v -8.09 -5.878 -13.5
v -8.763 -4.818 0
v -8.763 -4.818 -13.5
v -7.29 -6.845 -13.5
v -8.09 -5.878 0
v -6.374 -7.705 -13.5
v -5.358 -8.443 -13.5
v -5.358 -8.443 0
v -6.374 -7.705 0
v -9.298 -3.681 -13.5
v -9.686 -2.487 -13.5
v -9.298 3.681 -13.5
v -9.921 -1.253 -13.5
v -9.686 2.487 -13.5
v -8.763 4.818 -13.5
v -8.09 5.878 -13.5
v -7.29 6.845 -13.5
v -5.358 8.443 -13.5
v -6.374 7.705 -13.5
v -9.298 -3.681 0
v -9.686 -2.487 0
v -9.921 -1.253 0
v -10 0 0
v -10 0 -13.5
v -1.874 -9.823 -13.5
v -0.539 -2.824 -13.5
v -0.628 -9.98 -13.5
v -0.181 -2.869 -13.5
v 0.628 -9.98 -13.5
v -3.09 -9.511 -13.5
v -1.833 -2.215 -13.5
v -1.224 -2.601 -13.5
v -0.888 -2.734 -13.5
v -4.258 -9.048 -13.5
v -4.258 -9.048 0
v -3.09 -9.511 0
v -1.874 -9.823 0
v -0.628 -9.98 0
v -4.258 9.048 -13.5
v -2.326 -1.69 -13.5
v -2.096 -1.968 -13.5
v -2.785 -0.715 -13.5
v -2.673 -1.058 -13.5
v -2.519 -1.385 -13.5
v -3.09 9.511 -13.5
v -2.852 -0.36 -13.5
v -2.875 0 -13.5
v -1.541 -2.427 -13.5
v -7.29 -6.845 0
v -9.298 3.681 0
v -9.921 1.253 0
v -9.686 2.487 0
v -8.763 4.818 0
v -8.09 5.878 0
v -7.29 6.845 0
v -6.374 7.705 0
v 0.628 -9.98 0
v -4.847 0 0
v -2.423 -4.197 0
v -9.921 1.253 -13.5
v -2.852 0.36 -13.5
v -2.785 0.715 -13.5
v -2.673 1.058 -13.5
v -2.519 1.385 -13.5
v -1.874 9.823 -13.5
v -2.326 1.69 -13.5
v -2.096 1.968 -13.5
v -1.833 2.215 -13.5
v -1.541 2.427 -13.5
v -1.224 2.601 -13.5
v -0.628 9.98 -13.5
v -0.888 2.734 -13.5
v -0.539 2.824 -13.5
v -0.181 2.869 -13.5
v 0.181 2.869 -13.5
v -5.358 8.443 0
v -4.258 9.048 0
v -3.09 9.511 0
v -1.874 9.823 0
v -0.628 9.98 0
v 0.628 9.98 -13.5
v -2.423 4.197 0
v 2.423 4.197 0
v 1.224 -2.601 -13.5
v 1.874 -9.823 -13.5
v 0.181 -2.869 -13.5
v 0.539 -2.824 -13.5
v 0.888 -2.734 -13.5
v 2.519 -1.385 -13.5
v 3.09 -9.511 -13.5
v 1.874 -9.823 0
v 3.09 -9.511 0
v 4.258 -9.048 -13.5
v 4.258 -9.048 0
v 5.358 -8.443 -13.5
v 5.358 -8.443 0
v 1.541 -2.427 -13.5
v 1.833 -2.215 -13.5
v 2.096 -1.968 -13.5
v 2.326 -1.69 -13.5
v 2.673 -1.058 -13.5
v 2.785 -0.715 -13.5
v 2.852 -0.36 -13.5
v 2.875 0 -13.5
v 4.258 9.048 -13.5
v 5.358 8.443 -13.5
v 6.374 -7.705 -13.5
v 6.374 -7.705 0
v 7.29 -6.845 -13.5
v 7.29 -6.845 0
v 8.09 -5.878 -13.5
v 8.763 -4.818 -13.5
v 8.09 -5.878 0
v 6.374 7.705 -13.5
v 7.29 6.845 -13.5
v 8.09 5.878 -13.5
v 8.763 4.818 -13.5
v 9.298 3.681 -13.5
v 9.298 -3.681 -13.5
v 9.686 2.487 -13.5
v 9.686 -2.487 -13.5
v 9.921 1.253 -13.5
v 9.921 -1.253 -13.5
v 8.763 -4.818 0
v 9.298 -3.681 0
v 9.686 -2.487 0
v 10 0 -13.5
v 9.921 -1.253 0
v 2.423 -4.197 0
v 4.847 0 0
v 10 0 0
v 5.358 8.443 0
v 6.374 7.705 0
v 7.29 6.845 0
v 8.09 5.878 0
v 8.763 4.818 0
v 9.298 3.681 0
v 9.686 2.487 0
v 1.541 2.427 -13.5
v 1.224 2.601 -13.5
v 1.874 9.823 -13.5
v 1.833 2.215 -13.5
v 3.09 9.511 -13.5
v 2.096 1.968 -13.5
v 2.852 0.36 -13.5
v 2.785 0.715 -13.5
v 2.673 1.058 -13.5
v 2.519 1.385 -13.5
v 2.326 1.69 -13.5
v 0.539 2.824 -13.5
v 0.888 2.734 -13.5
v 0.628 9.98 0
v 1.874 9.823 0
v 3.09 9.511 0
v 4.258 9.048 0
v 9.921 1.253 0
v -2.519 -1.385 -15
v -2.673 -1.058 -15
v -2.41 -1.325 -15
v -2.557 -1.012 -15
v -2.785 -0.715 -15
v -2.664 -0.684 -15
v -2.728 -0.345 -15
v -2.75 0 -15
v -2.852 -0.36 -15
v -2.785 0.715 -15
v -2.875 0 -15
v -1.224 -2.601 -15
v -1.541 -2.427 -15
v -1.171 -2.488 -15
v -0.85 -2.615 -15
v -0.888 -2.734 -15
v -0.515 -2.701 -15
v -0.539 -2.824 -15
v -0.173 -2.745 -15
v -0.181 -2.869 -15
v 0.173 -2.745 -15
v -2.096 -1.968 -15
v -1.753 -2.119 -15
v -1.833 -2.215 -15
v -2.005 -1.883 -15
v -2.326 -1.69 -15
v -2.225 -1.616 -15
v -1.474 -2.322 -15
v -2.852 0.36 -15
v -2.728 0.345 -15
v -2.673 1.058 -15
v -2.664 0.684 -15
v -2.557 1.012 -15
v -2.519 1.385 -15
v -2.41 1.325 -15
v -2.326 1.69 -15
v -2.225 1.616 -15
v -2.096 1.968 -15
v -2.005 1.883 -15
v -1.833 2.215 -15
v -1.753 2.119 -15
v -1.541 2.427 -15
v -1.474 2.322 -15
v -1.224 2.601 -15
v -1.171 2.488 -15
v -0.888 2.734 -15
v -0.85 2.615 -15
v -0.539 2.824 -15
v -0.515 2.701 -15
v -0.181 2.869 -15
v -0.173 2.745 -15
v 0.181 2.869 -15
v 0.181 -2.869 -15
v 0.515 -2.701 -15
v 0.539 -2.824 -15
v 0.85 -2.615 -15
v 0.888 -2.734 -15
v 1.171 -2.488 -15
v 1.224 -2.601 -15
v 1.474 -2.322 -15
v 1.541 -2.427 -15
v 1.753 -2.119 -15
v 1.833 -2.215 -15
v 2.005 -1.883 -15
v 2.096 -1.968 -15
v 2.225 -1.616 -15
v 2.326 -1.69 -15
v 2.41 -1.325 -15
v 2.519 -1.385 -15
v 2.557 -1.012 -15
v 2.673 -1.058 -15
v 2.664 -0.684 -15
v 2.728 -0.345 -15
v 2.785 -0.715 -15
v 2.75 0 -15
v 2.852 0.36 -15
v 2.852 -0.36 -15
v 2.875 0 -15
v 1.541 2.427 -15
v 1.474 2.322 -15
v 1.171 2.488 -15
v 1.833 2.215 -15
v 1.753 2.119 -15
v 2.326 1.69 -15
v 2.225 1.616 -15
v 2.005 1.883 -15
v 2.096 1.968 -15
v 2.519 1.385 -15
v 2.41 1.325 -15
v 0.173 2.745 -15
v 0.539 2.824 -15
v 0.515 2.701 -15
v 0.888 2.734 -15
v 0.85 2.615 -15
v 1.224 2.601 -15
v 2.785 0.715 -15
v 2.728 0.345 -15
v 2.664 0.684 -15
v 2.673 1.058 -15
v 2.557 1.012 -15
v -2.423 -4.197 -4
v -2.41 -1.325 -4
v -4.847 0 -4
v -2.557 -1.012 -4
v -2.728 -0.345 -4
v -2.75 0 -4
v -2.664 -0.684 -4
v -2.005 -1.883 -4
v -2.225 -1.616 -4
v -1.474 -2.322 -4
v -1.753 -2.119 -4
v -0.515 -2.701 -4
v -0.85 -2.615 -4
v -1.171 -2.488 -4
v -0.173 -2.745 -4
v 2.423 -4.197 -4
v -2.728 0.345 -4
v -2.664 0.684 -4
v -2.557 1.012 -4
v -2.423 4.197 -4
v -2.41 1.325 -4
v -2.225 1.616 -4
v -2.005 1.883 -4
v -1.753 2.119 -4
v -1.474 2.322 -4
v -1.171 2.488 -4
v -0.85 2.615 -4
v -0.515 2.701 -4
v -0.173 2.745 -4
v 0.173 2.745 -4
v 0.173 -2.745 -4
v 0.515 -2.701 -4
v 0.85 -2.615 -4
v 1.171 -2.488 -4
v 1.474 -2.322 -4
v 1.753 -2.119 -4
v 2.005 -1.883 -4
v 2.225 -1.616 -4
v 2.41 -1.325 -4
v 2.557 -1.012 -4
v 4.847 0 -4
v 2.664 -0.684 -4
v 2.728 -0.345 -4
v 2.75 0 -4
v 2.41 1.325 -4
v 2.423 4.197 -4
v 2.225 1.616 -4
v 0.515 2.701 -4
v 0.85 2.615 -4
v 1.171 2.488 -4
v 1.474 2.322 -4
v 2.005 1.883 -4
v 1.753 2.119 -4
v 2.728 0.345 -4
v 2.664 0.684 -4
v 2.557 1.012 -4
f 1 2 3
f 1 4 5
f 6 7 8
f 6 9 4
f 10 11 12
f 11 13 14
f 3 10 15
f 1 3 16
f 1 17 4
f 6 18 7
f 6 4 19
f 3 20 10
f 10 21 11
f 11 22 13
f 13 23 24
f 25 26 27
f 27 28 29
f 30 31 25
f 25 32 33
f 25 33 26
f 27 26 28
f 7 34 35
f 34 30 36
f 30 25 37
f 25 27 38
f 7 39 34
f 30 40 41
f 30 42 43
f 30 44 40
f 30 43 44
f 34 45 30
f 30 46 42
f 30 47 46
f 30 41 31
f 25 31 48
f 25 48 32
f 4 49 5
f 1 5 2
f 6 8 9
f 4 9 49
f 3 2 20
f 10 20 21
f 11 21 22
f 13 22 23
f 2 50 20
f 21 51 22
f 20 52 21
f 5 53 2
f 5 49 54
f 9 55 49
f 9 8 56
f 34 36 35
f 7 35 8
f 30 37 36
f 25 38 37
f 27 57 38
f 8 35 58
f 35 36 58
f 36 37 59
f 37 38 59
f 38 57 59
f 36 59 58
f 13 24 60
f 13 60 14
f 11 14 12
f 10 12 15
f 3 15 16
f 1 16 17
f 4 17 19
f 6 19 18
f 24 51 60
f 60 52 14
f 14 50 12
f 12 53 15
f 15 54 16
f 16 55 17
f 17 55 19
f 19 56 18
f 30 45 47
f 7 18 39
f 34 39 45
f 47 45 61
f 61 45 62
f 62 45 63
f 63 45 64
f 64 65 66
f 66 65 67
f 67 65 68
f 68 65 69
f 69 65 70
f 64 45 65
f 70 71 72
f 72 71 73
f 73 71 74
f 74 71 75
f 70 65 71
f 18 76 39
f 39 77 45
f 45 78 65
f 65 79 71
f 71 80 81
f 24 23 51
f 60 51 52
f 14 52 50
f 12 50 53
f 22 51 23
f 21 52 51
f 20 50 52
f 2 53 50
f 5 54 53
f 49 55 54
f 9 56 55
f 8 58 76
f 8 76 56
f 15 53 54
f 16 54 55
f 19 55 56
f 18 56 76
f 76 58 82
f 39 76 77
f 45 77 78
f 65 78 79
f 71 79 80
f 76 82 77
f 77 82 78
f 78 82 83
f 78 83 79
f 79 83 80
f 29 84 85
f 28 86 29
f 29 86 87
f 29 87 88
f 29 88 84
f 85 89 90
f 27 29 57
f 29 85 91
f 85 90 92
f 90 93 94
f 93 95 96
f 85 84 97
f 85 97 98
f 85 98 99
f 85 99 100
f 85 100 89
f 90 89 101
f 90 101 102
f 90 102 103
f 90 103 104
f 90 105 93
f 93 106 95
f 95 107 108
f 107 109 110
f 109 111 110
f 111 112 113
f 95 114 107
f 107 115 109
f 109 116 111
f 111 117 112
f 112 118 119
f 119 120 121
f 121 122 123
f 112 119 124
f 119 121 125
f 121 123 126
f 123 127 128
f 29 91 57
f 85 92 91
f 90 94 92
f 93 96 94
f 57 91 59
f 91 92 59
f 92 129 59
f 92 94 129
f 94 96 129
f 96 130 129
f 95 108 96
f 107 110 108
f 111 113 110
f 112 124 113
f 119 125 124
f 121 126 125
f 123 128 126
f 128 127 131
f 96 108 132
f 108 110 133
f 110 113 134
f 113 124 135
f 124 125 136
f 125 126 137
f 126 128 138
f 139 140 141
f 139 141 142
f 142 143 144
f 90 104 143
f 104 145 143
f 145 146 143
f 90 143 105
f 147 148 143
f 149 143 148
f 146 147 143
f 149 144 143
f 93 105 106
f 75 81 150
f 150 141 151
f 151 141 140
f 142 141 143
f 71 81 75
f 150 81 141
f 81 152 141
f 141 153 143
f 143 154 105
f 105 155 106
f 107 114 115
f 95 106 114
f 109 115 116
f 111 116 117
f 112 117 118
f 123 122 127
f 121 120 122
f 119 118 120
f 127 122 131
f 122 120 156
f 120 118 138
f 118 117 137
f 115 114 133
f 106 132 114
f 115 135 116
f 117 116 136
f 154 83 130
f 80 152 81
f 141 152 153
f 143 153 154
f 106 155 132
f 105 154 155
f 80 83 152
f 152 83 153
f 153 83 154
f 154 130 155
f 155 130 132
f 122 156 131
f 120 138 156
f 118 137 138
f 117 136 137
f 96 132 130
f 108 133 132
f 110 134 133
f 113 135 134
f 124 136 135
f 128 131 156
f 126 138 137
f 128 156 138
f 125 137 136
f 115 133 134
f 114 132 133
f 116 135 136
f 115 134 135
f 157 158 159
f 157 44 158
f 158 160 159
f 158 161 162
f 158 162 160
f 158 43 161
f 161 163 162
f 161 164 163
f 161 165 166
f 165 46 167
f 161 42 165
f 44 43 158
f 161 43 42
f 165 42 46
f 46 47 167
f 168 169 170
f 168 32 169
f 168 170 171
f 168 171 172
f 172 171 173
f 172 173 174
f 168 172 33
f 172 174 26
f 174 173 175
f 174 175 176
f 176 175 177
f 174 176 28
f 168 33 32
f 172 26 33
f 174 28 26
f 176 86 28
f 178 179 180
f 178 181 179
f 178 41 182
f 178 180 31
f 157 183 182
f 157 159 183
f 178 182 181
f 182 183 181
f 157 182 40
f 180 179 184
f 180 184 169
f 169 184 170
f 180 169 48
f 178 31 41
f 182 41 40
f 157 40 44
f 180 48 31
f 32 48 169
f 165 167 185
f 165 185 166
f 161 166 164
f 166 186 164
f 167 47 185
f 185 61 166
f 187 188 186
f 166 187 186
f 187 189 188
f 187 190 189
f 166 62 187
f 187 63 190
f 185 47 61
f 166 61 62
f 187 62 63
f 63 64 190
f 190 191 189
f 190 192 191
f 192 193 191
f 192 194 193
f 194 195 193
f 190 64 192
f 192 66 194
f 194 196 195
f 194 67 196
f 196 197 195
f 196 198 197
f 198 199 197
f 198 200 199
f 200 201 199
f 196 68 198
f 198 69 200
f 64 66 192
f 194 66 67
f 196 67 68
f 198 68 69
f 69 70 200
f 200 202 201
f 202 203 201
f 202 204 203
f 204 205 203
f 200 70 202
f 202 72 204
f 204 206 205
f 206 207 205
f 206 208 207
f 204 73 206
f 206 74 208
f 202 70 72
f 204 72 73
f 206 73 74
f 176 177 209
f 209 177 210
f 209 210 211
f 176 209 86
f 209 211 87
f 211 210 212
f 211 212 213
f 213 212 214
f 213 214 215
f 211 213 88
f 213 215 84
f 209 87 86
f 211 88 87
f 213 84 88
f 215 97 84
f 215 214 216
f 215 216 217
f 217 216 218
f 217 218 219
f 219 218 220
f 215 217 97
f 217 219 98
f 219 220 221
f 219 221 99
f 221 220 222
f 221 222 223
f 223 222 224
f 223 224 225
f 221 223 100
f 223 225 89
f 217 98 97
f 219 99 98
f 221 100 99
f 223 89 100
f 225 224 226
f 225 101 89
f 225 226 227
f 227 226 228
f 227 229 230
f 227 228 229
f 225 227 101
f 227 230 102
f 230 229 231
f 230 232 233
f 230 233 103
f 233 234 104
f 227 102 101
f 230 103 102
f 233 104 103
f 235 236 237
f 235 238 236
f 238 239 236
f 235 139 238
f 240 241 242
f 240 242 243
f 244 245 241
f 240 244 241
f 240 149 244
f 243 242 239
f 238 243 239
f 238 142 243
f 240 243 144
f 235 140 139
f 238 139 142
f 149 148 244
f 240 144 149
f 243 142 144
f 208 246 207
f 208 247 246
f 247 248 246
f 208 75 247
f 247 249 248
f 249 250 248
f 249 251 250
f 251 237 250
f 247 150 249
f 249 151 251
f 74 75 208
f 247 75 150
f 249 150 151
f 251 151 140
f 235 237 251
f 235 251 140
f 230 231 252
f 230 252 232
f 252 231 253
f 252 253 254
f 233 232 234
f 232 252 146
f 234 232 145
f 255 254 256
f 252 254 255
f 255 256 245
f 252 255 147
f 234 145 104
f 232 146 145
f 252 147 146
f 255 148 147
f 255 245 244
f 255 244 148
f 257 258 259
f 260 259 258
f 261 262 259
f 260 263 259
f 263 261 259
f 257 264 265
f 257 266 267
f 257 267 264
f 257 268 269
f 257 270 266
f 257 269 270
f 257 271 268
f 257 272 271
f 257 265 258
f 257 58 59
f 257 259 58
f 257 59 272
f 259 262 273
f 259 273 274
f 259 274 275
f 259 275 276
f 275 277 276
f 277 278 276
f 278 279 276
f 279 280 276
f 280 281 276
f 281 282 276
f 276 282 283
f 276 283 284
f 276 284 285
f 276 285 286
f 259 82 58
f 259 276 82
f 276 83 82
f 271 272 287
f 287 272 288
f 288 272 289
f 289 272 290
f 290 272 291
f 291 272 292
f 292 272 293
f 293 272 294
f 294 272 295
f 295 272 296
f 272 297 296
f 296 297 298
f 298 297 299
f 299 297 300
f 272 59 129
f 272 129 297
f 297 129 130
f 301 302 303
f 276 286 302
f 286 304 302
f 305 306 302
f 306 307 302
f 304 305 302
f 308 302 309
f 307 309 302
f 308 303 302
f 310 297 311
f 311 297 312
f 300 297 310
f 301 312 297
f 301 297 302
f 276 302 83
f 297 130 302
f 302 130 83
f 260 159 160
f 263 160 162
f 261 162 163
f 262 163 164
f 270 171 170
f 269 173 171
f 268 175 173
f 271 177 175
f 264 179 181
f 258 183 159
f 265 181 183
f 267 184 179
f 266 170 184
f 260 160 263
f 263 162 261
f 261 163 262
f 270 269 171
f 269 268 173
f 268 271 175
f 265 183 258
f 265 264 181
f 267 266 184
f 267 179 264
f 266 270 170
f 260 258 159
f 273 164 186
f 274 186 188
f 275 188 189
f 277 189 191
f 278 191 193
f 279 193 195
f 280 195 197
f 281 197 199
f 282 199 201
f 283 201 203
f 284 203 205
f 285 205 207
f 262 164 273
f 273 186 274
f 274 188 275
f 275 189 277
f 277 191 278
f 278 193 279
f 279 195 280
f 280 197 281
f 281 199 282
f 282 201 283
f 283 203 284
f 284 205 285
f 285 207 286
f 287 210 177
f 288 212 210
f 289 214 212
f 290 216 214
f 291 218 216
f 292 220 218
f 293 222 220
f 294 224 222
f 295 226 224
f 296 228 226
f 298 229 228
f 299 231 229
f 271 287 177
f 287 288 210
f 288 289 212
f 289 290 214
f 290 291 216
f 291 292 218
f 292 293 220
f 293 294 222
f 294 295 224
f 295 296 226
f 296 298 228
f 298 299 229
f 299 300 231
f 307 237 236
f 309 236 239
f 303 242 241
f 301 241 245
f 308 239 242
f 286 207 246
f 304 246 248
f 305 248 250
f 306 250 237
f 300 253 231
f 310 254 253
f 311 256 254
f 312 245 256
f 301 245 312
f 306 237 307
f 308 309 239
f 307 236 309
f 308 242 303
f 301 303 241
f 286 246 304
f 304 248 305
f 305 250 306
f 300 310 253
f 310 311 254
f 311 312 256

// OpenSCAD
$fn = 50;

difference() {
	union() {
		translate(v = [0, 0, -13.5]) {
			cylinder(h = 13.5, r = 10.0);
		}
		#translate(v = [0, 0, -15.0]) {
			cylinder(h = 15, r = 2.875);
		}
	}
	union() {
		translate(v = [0, 0, 0]) {
			rotate(a = [0, 0, 0]) {
				difference() {
					union() {
						translate(v = [0, 0, -4]) {
							linear_extrude(height = 4) {
								polygon(points = [[4.8468, 0.0], [2.4234000000000004, 4.197451927062417], [-2.423399999999999, 4.197451927062417], [-4.8468, 5.935618106107392e-16], [-2.423400000000002, -4.197451927062416], [2.423399999999997, -4.197451927062419]]);
							}
						}
					}
					union();
				}
			}
		}
		#translate(v = [0, 0, -100.0]) {
			cylinder(h = 200, r = 2.75);
		}
	}
}
